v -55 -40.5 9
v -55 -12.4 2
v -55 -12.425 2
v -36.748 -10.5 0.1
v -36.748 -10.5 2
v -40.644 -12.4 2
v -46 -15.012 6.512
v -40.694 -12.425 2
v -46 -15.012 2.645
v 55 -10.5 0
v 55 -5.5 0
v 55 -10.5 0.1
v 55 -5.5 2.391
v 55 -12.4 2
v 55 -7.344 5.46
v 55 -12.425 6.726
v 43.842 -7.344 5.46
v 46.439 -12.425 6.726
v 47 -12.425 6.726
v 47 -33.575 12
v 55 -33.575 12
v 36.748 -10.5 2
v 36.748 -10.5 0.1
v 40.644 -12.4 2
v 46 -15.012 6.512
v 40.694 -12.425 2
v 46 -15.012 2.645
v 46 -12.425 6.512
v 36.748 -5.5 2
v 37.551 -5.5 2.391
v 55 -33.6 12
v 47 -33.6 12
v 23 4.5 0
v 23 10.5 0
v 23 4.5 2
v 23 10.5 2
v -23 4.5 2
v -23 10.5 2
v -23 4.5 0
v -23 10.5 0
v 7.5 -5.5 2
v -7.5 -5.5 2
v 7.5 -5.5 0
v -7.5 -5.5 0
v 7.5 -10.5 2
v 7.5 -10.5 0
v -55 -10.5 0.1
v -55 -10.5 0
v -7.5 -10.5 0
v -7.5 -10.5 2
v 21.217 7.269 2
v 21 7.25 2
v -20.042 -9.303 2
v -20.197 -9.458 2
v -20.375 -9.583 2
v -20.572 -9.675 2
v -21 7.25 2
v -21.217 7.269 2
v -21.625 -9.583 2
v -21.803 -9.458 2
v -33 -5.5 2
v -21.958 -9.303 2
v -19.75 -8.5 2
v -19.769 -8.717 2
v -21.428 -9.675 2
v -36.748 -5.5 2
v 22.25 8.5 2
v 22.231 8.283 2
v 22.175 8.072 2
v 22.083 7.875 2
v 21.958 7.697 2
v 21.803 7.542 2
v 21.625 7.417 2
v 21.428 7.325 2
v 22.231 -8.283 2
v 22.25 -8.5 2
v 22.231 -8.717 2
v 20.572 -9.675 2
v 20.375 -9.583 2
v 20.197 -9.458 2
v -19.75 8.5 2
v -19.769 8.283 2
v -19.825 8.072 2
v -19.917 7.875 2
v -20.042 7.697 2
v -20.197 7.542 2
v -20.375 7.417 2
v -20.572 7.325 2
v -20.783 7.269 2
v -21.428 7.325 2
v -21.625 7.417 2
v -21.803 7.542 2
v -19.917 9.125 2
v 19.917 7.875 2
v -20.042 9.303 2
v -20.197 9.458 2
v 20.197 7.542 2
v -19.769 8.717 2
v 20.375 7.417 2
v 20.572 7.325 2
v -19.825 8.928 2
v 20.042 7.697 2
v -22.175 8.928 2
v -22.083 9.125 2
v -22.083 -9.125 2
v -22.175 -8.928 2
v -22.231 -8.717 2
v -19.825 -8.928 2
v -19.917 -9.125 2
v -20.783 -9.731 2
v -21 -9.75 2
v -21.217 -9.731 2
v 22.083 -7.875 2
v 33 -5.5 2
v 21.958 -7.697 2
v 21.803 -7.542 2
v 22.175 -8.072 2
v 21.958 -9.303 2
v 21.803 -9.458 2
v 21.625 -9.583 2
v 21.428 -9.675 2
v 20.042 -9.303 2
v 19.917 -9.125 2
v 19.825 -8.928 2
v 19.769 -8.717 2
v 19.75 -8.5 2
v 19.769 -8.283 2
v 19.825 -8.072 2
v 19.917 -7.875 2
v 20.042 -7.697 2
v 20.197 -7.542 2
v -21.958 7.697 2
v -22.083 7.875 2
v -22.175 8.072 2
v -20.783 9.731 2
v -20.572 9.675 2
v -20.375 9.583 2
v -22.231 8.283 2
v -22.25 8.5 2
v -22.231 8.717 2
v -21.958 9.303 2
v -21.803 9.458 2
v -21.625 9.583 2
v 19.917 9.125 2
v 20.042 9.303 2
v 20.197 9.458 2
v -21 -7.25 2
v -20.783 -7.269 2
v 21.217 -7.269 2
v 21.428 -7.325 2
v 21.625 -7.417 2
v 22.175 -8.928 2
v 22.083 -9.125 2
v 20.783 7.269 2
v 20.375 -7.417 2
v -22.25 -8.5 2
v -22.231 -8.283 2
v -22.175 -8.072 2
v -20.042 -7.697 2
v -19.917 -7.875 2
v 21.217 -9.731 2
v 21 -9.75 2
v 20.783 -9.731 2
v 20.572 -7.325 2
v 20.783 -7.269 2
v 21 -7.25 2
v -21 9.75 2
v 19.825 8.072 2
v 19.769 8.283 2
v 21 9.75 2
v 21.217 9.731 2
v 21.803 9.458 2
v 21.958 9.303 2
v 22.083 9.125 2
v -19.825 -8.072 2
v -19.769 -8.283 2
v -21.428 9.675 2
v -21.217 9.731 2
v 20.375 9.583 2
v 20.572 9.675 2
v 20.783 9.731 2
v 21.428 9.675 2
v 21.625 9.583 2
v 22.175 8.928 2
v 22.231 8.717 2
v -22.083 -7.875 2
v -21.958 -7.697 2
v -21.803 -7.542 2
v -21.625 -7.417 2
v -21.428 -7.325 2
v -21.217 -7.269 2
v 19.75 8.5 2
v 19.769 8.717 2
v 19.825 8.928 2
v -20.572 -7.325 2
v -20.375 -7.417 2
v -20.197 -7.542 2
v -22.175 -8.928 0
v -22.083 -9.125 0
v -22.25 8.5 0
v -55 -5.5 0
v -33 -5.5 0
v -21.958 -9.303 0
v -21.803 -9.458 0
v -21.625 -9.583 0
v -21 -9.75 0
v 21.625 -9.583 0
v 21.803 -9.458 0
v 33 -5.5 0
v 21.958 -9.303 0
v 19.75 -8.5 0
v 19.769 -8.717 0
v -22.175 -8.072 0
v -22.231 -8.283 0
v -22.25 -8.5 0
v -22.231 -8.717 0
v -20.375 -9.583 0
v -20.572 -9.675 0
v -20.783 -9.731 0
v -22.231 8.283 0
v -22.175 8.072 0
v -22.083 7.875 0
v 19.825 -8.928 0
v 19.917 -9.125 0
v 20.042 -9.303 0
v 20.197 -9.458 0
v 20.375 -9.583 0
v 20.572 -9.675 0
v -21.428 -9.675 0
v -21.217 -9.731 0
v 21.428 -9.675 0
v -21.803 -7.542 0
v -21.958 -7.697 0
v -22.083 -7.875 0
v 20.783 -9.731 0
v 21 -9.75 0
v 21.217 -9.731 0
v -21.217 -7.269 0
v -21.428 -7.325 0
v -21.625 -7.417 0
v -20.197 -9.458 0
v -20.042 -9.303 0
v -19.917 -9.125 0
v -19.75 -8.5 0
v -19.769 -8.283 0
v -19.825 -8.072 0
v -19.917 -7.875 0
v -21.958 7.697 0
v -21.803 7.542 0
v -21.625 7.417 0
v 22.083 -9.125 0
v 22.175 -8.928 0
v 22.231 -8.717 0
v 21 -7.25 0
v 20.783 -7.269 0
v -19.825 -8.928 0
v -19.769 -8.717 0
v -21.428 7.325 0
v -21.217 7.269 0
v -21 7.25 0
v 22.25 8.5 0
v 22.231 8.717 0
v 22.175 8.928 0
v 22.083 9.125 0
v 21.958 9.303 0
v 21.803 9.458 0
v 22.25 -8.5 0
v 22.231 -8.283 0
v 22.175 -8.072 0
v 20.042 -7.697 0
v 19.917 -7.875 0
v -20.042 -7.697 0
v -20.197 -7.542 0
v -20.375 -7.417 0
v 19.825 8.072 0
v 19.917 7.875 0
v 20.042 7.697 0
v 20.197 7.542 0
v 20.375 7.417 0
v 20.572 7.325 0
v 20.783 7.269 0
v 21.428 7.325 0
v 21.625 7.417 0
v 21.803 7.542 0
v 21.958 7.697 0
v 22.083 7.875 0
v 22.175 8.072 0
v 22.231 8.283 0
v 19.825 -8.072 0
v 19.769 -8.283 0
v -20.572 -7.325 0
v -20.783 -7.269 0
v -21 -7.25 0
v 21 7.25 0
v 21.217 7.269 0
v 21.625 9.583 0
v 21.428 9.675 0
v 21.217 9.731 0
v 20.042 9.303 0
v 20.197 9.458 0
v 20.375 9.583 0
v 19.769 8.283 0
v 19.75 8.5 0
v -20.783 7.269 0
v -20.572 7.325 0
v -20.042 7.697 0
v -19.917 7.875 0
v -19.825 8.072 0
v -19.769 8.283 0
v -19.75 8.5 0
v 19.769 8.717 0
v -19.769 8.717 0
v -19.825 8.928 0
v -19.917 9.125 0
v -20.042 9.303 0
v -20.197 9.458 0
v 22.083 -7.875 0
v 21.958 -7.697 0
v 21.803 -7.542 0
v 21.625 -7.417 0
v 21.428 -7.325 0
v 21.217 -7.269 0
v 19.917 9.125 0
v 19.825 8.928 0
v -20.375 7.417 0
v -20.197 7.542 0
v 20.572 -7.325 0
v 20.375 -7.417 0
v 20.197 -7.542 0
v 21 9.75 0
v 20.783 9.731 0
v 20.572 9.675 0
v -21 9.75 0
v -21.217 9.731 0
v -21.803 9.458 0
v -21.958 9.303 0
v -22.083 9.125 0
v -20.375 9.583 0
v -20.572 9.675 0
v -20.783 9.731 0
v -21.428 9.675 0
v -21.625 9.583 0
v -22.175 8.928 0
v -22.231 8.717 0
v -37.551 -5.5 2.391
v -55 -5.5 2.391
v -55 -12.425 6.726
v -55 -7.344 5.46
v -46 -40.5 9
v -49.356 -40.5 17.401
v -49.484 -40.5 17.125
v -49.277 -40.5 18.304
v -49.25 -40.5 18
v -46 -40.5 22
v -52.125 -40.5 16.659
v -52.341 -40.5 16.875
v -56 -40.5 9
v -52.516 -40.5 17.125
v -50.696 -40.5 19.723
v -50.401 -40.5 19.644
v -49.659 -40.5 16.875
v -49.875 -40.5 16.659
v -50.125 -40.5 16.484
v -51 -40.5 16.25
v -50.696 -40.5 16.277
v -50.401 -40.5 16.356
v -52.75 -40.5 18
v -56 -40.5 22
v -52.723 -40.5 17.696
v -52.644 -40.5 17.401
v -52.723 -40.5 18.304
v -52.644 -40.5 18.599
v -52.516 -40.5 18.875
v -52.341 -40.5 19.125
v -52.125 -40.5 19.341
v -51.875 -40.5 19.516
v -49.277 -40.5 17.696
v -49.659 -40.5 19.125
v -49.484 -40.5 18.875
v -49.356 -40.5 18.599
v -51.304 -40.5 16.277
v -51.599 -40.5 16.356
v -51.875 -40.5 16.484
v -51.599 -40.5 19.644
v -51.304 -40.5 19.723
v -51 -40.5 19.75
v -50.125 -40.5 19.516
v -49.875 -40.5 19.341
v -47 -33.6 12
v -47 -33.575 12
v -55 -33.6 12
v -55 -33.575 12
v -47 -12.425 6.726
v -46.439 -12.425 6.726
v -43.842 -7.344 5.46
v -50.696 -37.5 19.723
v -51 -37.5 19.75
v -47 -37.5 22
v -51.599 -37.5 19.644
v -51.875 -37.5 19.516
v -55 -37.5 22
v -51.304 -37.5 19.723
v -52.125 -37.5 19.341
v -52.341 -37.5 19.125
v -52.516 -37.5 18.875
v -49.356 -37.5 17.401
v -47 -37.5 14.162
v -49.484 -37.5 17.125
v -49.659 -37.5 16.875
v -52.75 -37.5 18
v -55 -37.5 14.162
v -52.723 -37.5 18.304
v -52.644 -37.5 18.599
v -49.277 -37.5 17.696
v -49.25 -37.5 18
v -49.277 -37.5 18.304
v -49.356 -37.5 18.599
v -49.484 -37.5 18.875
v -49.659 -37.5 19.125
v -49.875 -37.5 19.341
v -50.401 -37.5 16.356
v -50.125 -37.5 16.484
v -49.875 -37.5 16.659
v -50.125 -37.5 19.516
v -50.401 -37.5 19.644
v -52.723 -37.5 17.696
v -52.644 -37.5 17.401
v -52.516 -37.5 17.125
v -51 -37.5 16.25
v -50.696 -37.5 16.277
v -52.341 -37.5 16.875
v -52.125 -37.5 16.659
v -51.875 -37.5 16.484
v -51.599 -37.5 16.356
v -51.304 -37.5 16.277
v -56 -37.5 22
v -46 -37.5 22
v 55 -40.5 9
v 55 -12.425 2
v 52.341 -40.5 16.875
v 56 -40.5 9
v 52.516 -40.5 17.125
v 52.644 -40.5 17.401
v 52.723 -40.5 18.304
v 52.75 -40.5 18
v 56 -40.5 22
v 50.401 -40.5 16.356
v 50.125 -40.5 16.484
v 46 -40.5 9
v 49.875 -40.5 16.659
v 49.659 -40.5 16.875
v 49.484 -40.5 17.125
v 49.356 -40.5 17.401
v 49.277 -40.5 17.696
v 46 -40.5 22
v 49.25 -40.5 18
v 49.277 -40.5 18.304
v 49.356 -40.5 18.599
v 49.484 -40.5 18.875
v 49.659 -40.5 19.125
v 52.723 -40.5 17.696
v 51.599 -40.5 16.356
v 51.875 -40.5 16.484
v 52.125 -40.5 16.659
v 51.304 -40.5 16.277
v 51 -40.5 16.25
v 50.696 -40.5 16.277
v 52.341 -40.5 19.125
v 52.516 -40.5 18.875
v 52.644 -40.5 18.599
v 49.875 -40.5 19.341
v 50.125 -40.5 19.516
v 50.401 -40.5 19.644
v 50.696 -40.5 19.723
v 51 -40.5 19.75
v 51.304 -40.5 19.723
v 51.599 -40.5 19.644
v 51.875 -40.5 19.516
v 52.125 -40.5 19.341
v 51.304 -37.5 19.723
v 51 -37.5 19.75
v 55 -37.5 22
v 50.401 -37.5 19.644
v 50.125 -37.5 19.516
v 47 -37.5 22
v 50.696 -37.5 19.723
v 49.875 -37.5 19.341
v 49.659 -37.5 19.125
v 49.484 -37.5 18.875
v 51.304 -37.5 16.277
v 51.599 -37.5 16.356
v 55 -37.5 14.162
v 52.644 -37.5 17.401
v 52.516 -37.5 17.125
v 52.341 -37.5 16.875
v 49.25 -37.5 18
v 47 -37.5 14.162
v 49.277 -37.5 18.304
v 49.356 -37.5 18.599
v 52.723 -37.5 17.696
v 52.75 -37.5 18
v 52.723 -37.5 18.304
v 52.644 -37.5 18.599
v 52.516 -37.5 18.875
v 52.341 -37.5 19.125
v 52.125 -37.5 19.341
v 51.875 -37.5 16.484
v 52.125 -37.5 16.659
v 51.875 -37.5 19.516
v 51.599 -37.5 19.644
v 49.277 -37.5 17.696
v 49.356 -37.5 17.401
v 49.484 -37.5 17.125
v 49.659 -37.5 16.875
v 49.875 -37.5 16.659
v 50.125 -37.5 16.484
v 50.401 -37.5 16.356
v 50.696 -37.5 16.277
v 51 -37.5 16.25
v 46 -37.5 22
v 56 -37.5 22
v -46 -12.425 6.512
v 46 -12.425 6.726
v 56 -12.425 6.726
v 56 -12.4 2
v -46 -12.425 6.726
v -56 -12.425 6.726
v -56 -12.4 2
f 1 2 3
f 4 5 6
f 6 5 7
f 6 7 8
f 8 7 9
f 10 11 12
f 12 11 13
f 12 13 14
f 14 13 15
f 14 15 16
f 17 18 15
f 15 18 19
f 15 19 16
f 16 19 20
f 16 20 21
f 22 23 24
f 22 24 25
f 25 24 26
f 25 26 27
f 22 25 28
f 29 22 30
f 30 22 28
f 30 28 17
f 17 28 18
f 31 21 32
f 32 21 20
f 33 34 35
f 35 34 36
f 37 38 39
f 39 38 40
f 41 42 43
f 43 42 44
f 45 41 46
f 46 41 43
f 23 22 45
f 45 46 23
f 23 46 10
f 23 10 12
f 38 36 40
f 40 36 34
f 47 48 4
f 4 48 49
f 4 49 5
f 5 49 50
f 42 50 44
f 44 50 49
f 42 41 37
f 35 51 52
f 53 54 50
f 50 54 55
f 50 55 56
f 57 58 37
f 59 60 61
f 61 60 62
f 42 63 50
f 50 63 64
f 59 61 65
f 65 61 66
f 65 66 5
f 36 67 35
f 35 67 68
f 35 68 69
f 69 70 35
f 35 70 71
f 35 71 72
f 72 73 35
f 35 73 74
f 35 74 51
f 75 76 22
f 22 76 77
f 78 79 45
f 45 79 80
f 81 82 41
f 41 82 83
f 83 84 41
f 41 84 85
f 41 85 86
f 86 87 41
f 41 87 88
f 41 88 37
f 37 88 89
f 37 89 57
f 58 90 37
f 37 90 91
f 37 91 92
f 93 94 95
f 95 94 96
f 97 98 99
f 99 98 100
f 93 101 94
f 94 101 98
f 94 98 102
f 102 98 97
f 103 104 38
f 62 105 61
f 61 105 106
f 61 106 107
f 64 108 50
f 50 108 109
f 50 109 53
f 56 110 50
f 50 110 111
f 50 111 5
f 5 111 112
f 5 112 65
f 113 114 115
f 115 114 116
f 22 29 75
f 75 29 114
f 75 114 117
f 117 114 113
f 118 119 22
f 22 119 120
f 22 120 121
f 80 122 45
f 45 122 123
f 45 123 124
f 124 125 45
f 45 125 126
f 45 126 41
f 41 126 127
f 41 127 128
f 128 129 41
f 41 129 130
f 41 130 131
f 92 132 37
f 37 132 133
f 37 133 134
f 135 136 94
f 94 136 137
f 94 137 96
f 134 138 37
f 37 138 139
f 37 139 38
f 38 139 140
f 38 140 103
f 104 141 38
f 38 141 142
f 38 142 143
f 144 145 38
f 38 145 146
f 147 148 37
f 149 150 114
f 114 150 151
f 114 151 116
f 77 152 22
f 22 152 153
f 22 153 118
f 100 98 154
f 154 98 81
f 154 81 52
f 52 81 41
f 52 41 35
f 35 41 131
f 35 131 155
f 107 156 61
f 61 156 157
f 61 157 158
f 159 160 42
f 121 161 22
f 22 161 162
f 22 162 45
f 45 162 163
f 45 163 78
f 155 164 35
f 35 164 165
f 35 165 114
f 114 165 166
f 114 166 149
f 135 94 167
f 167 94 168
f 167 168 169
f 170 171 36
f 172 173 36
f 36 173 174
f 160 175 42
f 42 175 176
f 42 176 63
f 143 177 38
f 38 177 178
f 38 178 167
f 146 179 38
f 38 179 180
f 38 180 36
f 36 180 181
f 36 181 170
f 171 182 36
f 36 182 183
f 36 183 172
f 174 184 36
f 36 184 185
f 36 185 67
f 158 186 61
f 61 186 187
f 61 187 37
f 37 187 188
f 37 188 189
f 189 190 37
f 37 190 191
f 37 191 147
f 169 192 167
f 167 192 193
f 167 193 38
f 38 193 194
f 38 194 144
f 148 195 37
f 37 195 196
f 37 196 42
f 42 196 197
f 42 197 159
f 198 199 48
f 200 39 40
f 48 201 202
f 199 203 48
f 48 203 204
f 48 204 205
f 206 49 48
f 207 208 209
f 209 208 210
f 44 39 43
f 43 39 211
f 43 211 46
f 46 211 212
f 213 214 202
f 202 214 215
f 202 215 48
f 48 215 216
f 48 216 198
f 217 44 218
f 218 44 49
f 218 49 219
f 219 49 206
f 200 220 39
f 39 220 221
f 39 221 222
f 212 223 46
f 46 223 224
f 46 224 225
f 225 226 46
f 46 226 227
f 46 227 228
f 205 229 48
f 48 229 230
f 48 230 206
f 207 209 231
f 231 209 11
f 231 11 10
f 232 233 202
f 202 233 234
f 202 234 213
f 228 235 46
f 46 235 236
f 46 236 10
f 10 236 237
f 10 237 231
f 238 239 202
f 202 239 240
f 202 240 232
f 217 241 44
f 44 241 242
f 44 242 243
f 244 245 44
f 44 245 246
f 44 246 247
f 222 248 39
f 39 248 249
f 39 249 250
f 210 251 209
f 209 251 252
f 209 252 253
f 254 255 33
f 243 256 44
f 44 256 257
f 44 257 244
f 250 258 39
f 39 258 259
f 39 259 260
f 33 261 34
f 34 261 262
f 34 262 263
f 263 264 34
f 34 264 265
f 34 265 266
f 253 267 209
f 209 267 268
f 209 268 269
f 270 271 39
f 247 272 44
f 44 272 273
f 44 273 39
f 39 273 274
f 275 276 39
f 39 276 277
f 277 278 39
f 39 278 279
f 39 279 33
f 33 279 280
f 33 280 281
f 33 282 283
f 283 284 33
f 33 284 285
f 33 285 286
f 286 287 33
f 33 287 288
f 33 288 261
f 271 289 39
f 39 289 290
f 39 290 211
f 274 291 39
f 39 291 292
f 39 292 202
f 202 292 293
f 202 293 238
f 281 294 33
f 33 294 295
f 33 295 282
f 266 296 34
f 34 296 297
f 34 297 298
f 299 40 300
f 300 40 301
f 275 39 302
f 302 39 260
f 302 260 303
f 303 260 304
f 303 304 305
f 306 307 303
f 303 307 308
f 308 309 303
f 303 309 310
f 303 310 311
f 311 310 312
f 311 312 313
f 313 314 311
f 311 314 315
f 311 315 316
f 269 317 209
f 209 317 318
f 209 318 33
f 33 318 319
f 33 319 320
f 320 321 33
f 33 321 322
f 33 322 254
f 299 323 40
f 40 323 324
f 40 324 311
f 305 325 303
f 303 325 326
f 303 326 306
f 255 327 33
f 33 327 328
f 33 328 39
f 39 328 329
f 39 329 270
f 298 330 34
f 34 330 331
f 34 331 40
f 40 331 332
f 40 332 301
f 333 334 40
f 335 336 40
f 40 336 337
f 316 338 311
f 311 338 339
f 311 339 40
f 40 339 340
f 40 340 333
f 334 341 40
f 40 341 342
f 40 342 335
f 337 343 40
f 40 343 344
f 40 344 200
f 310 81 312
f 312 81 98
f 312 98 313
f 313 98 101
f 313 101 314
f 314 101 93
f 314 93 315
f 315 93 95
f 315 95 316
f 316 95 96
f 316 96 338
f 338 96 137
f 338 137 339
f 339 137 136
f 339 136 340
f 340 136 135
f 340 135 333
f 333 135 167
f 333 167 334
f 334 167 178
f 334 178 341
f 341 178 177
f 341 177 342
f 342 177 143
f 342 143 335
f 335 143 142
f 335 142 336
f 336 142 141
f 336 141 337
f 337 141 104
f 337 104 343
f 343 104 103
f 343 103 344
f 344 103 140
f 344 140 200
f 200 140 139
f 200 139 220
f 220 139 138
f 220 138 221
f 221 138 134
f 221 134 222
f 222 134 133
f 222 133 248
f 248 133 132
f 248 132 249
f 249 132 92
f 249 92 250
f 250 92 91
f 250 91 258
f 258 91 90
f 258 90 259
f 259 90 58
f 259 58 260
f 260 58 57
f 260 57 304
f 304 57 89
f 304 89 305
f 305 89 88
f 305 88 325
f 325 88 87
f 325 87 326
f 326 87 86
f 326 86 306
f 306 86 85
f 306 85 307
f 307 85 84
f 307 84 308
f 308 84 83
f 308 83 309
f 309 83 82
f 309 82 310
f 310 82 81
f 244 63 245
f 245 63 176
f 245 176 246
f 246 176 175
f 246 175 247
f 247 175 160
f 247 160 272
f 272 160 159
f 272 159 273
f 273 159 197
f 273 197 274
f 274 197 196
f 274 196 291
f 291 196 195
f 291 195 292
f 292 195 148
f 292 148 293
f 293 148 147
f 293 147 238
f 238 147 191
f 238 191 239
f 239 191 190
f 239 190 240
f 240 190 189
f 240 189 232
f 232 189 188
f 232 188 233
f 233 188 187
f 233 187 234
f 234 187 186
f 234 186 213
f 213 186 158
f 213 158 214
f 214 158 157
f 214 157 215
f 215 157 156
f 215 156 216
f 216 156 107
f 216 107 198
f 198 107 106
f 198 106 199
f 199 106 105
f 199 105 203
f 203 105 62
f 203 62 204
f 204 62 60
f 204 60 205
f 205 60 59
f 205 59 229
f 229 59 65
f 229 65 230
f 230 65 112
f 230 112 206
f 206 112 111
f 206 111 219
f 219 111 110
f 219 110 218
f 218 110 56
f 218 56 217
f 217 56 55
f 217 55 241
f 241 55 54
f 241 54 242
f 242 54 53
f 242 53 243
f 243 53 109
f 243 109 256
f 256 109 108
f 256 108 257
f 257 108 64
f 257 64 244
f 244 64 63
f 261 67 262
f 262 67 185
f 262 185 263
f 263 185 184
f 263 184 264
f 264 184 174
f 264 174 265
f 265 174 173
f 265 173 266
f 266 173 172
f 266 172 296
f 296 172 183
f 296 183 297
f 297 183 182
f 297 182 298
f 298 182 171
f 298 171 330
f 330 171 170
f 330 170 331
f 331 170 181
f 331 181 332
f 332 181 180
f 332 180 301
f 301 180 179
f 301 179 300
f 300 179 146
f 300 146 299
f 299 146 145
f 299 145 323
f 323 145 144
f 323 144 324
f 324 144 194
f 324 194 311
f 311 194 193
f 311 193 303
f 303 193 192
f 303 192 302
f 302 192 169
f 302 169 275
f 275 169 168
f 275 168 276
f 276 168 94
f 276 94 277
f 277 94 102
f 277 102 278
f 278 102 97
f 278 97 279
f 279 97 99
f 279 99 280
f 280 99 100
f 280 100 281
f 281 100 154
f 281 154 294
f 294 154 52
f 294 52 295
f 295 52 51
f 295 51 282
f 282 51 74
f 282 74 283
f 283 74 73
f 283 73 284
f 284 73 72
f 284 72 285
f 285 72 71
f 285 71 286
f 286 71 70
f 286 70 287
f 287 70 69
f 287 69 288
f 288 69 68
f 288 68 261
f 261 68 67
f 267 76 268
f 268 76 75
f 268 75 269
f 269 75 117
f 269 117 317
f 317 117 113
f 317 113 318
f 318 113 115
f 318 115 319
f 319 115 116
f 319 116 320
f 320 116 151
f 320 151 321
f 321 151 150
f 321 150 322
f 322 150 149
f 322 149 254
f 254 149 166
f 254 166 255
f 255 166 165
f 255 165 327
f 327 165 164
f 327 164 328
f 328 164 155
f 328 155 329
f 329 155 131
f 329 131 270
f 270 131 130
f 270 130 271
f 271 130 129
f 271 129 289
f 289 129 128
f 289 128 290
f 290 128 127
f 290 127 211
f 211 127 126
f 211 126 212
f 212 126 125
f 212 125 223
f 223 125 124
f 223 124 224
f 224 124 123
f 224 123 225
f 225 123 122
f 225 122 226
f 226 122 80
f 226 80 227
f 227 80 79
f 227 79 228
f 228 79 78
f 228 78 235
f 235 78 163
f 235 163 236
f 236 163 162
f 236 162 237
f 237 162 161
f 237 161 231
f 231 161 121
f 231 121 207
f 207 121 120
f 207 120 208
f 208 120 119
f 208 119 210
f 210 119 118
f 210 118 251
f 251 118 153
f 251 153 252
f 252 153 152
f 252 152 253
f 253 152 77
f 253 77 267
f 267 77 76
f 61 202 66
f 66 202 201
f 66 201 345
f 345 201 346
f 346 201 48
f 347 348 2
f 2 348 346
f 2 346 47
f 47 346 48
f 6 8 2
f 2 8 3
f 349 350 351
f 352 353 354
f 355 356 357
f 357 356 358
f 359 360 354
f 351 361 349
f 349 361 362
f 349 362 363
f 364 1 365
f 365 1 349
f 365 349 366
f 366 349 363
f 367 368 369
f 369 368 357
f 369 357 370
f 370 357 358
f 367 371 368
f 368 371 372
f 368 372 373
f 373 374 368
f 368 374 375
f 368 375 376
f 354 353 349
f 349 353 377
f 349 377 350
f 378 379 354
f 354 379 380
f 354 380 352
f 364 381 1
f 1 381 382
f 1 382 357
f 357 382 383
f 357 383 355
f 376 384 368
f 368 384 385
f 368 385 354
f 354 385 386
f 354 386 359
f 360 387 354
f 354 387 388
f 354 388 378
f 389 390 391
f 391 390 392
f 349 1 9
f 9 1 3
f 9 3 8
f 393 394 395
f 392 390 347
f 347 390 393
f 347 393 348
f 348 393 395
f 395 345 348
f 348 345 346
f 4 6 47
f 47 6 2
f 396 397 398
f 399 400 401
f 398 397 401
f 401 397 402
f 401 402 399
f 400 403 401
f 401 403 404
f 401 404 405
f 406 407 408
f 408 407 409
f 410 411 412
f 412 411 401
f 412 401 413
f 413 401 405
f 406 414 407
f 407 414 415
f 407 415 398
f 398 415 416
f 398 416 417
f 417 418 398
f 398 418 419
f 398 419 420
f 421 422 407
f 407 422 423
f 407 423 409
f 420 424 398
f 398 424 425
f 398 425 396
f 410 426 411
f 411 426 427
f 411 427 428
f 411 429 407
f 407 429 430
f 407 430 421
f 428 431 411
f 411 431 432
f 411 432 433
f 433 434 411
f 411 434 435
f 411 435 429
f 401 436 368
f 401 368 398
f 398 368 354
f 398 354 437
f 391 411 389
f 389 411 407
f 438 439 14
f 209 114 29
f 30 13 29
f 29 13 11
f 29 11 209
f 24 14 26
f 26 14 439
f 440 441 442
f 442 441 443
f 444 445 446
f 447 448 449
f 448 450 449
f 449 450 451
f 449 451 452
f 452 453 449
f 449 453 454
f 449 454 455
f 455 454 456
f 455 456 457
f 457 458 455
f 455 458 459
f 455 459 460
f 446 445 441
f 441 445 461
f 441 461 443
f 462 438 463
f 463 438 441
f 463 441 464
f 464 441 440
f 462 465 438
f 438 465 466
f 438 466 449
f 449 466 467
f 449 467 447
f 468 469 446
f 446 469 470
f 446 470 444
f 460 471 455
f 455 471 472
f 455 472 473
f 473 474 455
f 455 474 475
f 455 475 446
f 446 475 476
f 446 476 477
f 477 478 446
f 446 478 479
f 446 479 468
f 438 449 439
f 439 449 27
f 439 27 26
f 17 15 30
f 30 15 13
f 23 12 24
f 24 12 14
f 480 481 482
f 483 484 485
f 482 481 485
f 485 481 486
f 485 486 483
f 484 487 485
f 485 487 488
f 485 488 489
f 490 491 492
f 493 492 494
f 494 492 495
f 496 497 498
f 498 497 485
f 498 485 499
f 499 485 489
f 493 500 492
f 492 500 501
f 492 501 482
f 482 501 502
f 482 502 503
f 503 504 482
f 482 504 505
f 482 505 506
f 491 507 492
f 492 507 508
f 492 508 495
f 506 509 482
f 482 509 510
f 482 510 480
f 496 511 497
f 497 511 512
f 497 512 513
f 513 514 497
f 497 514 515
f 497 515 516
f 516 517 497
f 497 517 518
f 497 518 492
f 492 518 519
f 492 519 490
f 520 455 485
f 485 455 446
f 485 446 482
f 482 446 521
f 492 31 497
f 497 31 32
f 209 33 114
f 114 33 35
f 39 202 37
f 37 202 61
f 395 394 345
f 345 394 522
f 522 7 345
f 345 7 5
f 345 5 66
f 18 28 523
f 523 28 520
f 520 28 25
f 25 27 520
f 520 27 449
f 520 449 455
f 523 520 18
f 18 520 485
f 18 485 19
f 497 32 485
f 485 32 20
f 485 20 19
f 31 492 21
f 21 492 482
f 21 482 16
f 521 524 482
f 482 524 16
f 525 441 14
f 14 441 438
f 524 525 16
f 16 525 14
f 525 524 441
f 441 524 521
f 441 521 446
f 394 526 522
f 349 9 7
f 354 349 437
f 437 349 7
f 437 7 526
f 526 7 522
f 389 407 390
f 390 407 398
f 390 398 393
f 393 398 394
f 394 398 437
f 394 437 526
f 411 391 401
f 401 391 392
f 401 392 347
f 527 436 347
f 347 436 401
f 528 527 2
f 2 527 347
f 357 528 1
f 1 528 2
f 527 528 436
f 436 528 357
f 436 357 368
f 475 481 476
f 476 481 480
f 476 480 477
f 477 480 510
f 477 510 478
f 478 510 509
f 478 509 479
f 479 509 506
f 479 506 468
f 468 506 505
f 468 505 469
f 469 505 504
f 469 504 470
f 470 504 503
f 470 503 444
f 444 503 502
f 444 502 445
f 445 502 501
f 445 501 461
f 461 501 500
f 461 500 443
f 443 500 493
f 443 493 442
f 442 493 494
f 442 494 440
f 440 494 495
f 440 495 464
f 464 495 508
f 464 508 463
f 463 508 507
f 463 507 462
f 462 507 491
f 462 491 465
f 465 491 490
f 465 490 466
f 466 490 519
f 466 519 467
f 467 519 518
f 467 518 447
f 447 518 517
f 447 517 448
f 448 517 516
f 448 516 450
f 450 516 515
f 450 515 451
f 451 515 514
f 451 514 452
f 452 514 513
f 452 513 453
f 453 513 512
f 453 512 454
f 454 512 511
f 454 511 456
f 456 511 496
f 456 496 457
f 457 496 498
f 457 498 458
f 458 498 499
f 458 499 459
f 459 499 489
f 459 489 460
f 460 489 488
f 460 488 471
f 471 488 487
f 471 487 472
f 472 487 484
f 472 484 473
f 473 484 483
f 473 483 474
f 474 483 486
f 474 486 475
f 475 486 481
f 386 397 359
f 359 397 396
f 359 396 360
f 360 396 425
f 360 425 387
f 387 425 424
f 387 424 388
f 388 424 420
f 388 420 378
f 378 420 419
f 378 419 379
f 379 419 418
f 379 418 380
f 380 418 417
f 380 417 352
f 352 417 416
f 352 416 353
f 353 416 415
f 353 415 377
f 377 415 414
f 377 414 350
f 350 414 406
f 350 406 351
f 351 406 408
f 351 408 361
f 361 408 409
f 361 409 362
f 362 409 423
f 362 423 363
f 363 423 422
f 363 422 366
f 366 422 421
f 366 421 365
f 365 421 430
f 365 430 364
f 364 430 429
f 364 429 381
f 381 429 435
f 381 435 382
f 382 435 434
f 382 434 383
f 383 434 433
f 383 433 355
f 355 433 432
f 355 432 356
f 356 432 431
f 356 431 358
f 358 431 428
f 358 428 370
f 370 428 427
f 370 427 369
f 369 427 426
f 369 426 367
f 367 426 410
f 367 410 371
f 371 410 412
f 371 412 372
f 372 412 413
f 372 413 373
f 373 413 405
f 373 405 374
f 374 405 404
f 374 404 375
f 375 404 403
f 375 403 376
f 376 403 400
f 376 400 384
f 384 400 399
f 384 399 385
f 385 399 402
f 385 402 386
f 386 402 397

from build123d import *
from OCP.BRepFilletAPI import BRepFilletAPI_MakeChamfer

# Parameters (mm, degrees)
BOSS_EXTRUDE1_DEPTH                        = 2
SKETCH2_R                                  = 1.25
CUT_EXTRUDE1_DEPTH                         = 26.362373706
MIRROR1_AT_THE_SECOND_PLANE_COPY_1_SKETC_R = 1.25
MIRROR1_AT_THE_SECOND_PLANE_COPY_1_DEPTH   = 26.362373706
SKETCH4_W                                  = 32
SKETCH4_H                                  = 5
BOSS_EXTRUDE2_DEPTH                        = 2
SKETCH5_W                                  = 8
SKETCH5_H                                  = 35
BOSS_EXTRUDE3_DEPTH                        = 10
CHAMFER3_SIZE                              = 7
CHAMFER3_SIZE2                             = 28.075466535
CHAMFER2_SIZE                              = 1.9
CHAMFER2_SIZE2                             = 2.60855061
SKETCH6_W                                  = 8
SKETCH6_H                                  = 3
BOSS_EXTRUDE4_DEPTH                        = 10
CHAMFER4_SIZE                              = 3.9
CHAMFER4_SIZE2                             = 2.161805301
CHAMFER3_OF_MIRROR3_SIZE                   = 7
CHAMFER3_OF_MIRROR3_SIZE2                  = 28.075466535
CHAMFER2_OF_MIRROR3_SIZE                   = 1.9
CHAMFER2_OF_MIRROR3_SIZE2                  = 2.60855061
CHAMFER4_OF_MIRROR3_SIZE2                  = 3.9
CHAMFER4_OF_MIRROR3_SIZE                   = 2.161805301
CHAMFER1_SIZE                              = 10
CHAMFER5_SIZE                              = 10.251519208
CHAMFER5_SIZE_2                            = 5
BOSS_EXTRUDE5_DEPTH                        = 1
BOSS_EXTRUDE6_DEPTH                        = 1
SKETCH9_R                                  = 1.75
CUT_EXTRUDE2_DEPTH                         = 77.96752562


with BuildPart() as part:
    # Sketch1 → Boss-Extrude1 (new body)
    with BuildSketch(Plane.XY):
        Polygon((23, 10.5), (-23, 10.5), (-23, -10.5), (-7.5, -10.5), (-7.5, -5.5), (7.5, -5.5), (7.5, -10.5), (23, -10.5), align=None)
    extrude(amount=BOSS_EXTRUDE1_DEPTH)

    # Sketch2 → Cut-Extrude1 (cut, through all)
    with BuildSketch(Plane.XY.offset(2)):
        with Locations((-21, 8.5)):
            Circle(SKETCH2_R)
    cut_extrude1 = extrude(amount=-CUT_EXTRUDE1_DEPTH, mode=Mode.SUBTRACT)

    # Mirror1: Cut-Extrude1 across plane
    add(cut_extrude1.mirror(Plane(origin=(0, 0, 0), x_dir=(0, 0, 1), z_dir=(1, 0, 0))), mode=Mode.SUBTRACT)

    # Mirror1 at the second plane: Cut-Extrude1 across plane
    add(cut_extrude1.mirror(Plane.ZX), mode=Mode.SUBTRACT)

    # Mirror1 at the second plane copy 1 sketc → Mirror1 at the second plane copy 1 (cut, through all)
    with BuildSketch(Plane(origin=(0, 0, 2), x_dir=(-1, 0, 0), z_dir=(0, 0, 1))):
        with Locations((-21, 8.5)):
            Circle(MIRROR1_AT_THE_SECOND_PLANE_COPY_1_SKETC_R)
    extrude(amount=-MIRROR1_AT_THE_SECOND_PLANE_COPY_1_DEPTH, mode=Mode.SUBTRACT)

    # Sketch4 → Boss-Extrude2 (add)
    with BuildSketch(Plane.XY):
        with Locations((-39, -8)):
            Rectangle(SKETCH4_W, SKETCH4_H)
    boss_extrude2 = extrude(amount=BOSS_EXTRUDE2_DEPTH)

    # Sketch5 → Boss-Extrude3 (add)
    with BuildSketch(Plane.XY.offset(2)):
        with Locations((-51, -23)):
            Rectangle(SKETCH5_W, SKETCH5_H)
    boss_extrude3 = extrude(amount=BOSS_EXTRUDE3_DEPTH)

    # Chamfer3: one chamfer whose edges measure the first distance from different faces: ONE call of the kernel's chamfer builder (chamfer() names one face for all edges)
    chamfer3_edges_1 = [part.edges().sort_by_distance(p)[0] for p in [
        (-51, -40.5, 2),
    ]]
    chamfer3_side_1 = [part.faces().sort_by_distance(p)[0] for p in [
        (-51, -40.5, 7),
    ]]
    chamfer3_edges_2 = [part.edges().sort_by_distance(p)[0] for p in [
        (-51, -5.5, 12),
    ]]
    chamfer3_side_2 = [part.faces().sort_by_distance(p)[0] for p in [
        (-54.65823985, -5.5, 6),
    ]]
    chamfer3 = BRepFilletAPI_MakeChamfer(part.part.solid().wrapped)
    for e in chamfer3_edges_1:
        chamfer3.Add(CHAMFER3_SIZE, CHAMFER3_SIZE2, e.wrapped, chamfer3_side_1[0].wrapped)  # the first distance lies on this face
    for e in chamfer3_edges_2:
        chamfer3.Add(CHAMFER3_SIZE, CHAMFER3_SIZE2, e.wrapped, chamfer3_side_2[0].wrapped)  # the first distance lies on this face
    add(Compound.cast(chamfer3.Shape()), mode=Mode.REPLACE)

    # Chamfer2: one chamfer whose edges measure the first distance from different faces: ONE call of the kernel's chamfer builder (chamfer() names one face for all edges)
    chamfer2_edges_1 = [part.edges().sort_by_distance(p)[0] for p in [
        (-51, -10.5, 2),
    ]]
    chamfer2_edges_2 = [part.edges().sort_by_distance(p)[0] for p in [
        (-51, -5.5, 5),
    ]]
    chamfer2_side_2 = [part.faces().sort_by_distance(p)[0] for p in [
        (-51, -19.537733267, 8.5),
    ]]
    chamfer2 = BRepFilletAPI_MakeChamfer(part.part.solid().wrapped)
    for e in chamfer2_edges_1:
        chamfer2.Add(CHAMFER2_SIZE, e.wrapped)
    for e in chamfer2_edges_2:
        chamfer2.Add(CHAMFER2_SIZE, CHAMFER2_SIZE2, e.wrapped, chamfer2_side_2[0].wrapped)  # the first distance lies on this face
    add(Compound.cast(chamfer2.Shape()), mode=Mode.REPLACE)

    # Sketch6 → Boss-Extrude4 (add)
    with BuildSketch(Plane.XY.offset(12)):
        with Locations((-51, -39)):
            Rectangle(SKETCH6_W, SKETCH6_H)
    boss_extrude4 = extrude(amount=BOSS_EXTRUDE4_DEPTH)

    # Chamfer4
    chamfer4_edges = [part.edges().sort_by_distance(p)[0] for p in [
        (-51, -37.5, 12),
    ]]
    chamfer4_side = [part.faces().sort_by_distance(p)[0] for p in [
        (-51, -35.537733267, 12),
    ]]
    chamfer(chamfer4_edges, length=CHAMFER4_SIZE, length2=CHAMFER4_SIZE2, reference=chamfer4_side[0])

    # Mirror3: Boss-Extrude2, Boss-Extrude3, Boss-Extrude4 across plane
    add(boss_extrude2.mirror(Plane(origin=(0, 0, 0), x_dir=(0, 0, 1), z_dir=(1, 0, 0))))
    add(boss_extrude3.mirror(Plane(origin=(0, 0, 0), x_dir=(0, 0, 1), z_dir=(1, 0, 0))))
    add(boss_extrude4.mirror(Plane(origin=(0, 0, 0), x_dir=(0, 0, 1), z_dir=(1, 0, 0))))

    # Chamfer3 of Mirror3: one chamfer whose edges measure the first distance from different faces: ONE call of the kernel's chamfer builder (chamfer() names one face for all edges)
    chamfer3_of_mirror3_edges_1 = [part.edges().sort_by_distance(p)[0] for p in [
        (51, -40.5, 2),
    ]]
    chamfer3_of_mirror3_side_1 = [part.faces().sort_by_distance(p)[0] for p in [
        (51, -40.5, 7),
    ]]
    chamfer3_of_mirror3_edges_2 = [part.edges().sort_by_distance(p)[0] for p in [
        (51, -5.5, 12),
    ]]
    chamfer3_of_mirror3_side_2 = [part.faces().sort_by_distance(p)[0] for p in [
        (54.65823985, -5.5, 6),
    ]]
    chamfer3_of_mirror3 = BRepFilletAPI_MakeChamfer(part.part.solid().wrapped)
    for e in chamfer3_of_mirror3_edges_1:
        chamfer3_of_mirror3.Add(CHAMFER3_OF_MIRROR3_SIZE, CHAMFER3_OF_MIRROR3_SIZE2, e.wrapped, chamfer3_of_mirror3_side_1[0].wrapped)  # the first distance lies on this face
    for e in chamfer3_of_mirror3_edges_2:
        chamfer3_of_mirror3.Add(CHAMFER3_OF_MIRROR3_SIZE, CHAMFER3_OF_MIRROR3_SIZE2, e.wrapped, chamfer3_of_mirror3_side_2[0].wrapped)  # the first distance lies on this face
    add(Compound.cast(chamfer3_of_mirror3.Shape()), mode=Mode.REPLACE)

    # Chamfer2 of Mirror3: one chamfer whose edges measure the first distance from different faces: ONE call of the kernel's chamfer builder (chamfer() names one face for all edges)
    chamfer2_of_mirror3_edges_1 = [part.edges().sort_by_distance(p)[0] for p in [
        (51, -10.5, 2),
    ]]
    chamfer2_of_mirror3_edges_2 = [part.edges().sort_by_distance(p)[0] for p in [
        (51, -5.5, 5),
    ]]
    chamfer2_of_mirror3_side_2 = [part.faces().sort_by_distance(p)[0] for p in [
        (51, -19.537733267, 8.5),
    ]]
    chamfer2_of_mirror3 = BRepFilletAPI_MakeChamfer(part.part.solid().wrapped)
    for e in chamfer2_of_mirror3_edges_1:
        chamfer2_of_mirror3.Add(CHAMFER2_OF_MIRROR3_SIZE, e.wrapped)
    for e in chamfer2_of_mirror3_edges_2:
        chamfer2_of_mirror3.Add(CHAMFER2_OF_MIRROR3_SIZE, CHAMFER2_OF_MIRROR3_SIZE2, e.wrapped, chamfer2_of_mirror3_side_2[0].wrapped)  # the first distance lies on this face
    add(Compound.cast(chamfer2_of_mirror3.Shape()), mode=Mode.REPLACE)

    # Chamfer4 of Mirror3
    chamfer4_of_mirror3_edges = [part.edges().sort_by_distance(p)[0] for p in [
        (51, -37.5, 12),
    ]]
    chamfer(chamfer4_of_mirror3_edges, length=CHAMFER4_OF_MIRROR3_SIZE, length2=CHAMFER4_OF_MIRROR3_SIZE2)

    # Chamfer1
    chamfer1_edges = [part.edges().sort_by_distance(p)[0] for p in [
        (23, -5.5, 1),
        (-23, -5.5, 1),
    ]]
    chamfer(chamfer1_edges, length=CHAMFER1_SIZE)

    # Chamfer5
    # the kernel refuses this chamfer: 10.251519208, 5 mm, written as the material it adds along each edge
    with BuildSketch(Plane(origin=(-47, -10.5, 28.554001508), x_dir=(1, 0, 0), z_dir=(0, 0, -1))) as chamfer5_piece_1_section:
        Polygon((CHAMFER5_SIZE, 0), (0, CHAMFER5_SIZE_2), (0, 0), align=None)
    chamfer5_piece_1 = extrude(amount=55.008003016, mode=Mode.PRIVATE)
    chamfer5_piece_1 = split(chamfer5_piece_1, bisect_by=Plane(origin=(-47, -16.84580993, 3.102348031), z_dir=(0, 0.24192189559966532, 0.9702957262759971)), keep=Keep.TOP, mode=Mode.PRIVATE)
    chamfer5_piece_1 = split(chamfer5_piece_1, bisect_by=Plane(origin=(-47, -10.5, 2), z_dir=(0, 0, 1)), keep=Keep.TOP, mode=Mode.PRIVATE)
    chamfer5_piece_1 = split(chamfer5_piece_1, bisect_by=Plane(origin=(-47, -24.727000754, 14.327000754), z_dir=(0, -0.7071067811865475, -0.7071067811865477)), keep=Keep.TOP, mode=Mode.PRIVATE)
    add(chamfer5_piece_1)
    with BuildSketch(Plane(origin=(-47, -10.5, 2), x_dir=(1, 0, 0), z_dir=(0, 0, -1))) as chamfer5_piece_2_section:
        Polygon((CHAMFER5_SIZE, 0), (0, CHAMFER5_SIZE_2), (0, 0), align=None)
    chamfer5_piece_2 = extrude(amount=28.454001508, mode=Mode.PRIVATE)
    chamfer5_piece_2 = split(chamfer5_piece_2, bisect_by=Plane(origin=(-47, -11.45, 1.05), z_dir=(0, 0.7071067811865475, 0.7071067811865477)), keep=Keep.TOP, mode=Mode.PRIVATE)
    add(chamfer5_piece_2)
    with BuildSketch(Plane(origin=(-47, -5.5, 2), x_dir=(1, 0, 0), z_dir=(0, -1, 0))) as chamfer5_piece_3_section:
        Polygon((CHAMFER5_SIZE, 0), (0, CHAMFER5_SIZE_2), (0, 0), align=None)
    chamfer5_piece_3 = extrude(amount=5, mode=Mode.PRIVATE)
    chamfer5_piece_3 = split(chamfer5_piece_3, bisect_by=Plane(origin=(-47, -5.327185351, 2.103837517), z_dir=(0, -0.8571673007021119, -0.5150380749100548)), keep=Keep.TOP, mode=Mode.PRIVATE)
    chamfer5_piece_3 = split(chamfer5_piece_3, bisect_by=Plane(origin=(-47, -4.795792656, 4.824421389), z_dir=(0, -0.24192189559966532, -0.9702957262759971)), keep=Keep.TOP, mode=Mode.PRIVATE)
    add(chamfer5_piece_3)
    with BuildSketch(Plane(origin=(47, -5.5, 2), x_dir=(-1, 0, 0), z_dir=(0, -1, 0))) as chamfer5_piece_4_section:
        Polygon((CHAMFER5_SIZE, 0), (0, -CHAMFER5_SIZE_2), (0, 0), align=None)
    chamfer5_piece_4 = extrude(amount=5, mode=Mode.PRIVATE)
    chamfer5_piece_4 = split(chamfer5_piece_4, bisect_by=Plane(origin=(47, -5.327185351, 2.103837517), z_dir=(0, -0.8571673007021119, -0.5150380749100548)), keep=Keep.TOP, mode=Mode.PRIVATE)
    chamfer5_piece_4 = split(chamfer5_piece_4, bisect_by=Plane(origin=(47, -4.795792656, 4.824421389), z_dir=(0, -0.24192189559966532, -0.9702957262759971)), keep=Keep.TOP, mode=Mode.PRIVATE)
    add(chamfer5_piece_4)
    with BuildSketch(Plane(origin=(47, -10.5, 2), x_dir=(0, -1, 0), z_dir=(0, 0, -1))) as chamfer5_piece_5_section:
        Polygon((CHAMFER5_SIZE_2, 0), (0, CHAMFER5_SIZE), (0, 0), align=None)
    chamfer5_piece_5 = extrude(amount=28.454001508, mode=Mode.PRIVATE)
    chamfer5_piece_5 = split(chamfer5_piece_5, bisect_by=Plane(origin=(47, -11.45, 1.05), z_dir=(0, 0.7071067811865475, 0.7071067811865477)), keep=Keep.TOP, mode=Mode.PRIVATE)
    add(chamfer5_piece_5)
    with BuildSketch(Plane(origin=(47, -10.5, 28.554001508), x_dir=(0, -1, 0), z_dir=(0, 0, -1))) as chamfer5_piece_6_section:
        Polygon((CHAMFER5_SIZE_2, 0), (0, CHAMFER5_SIZE), (0, 0), align=None)
    chamfer5_piece_6 = extrude(amount=55.008003016, mode=Mode.PRIVATE)
    chamfer5_piece_6 = split(chamfer5_piece_6, bisect_by=Plane(origin=(47, -16.84580993, 3.102348031), z_dir=(0, 0.24192189559966532, 0.9702957262759971)), keep=Keep.TOP, mode=Mode.PRIVATE)
    chamfer5_piece_6 = split(chamfer5_piece_6, bisect_by=Plane(origin=(47, -10.5, 2), z_dir=(0, 0, 1)), keep=Keep.TOP, mode=Mode.PRIVATE)
    chamfer5_piece_6 = split(chamfer5_piece_6, bisect_by=Plane(origin=(47, -24.727000754, 14.327000754), z_dir=(0, -0.7071067811865475, -0.7071067811865477)), keep=Keep.TOP, mode=Mode.PRIVATE)
    add(chamfer5_piece_6)
    with BuildSketch(Plane(origin=(-47, -5.5, 2), x_dir=(1, 0, 0), z_dir=(0, -1, 0))) as chamfer5_piece_7a_section:
        Polygon((CHAMFER5_SIZE, 0), (0, CHAMFER5_SIZE_2), (0, 0), align=None)
    chamfer5_piece_7a = extrude(amount=31.554001508, mode=Mode.PRIVATE)
    chamfer5_piece_7a = split(chamfer5_piece_7a, bisect_by=Plane(origin=(-47, -10.5, 2), z_dir=(0, -1, 0)), keep=Keep.TOP, mode=Mode.PRIVATE)
    chamfer5_piece_7a = split(chamfer5_piece_7a, bisect_by=Plane(origin=(-47, -4.795792656, 4.824421389), z_dir=(0, -0.24192189559966532, -0.9702957262759971)), keep=Keep.TOP, mode=Mode.PRIVATE)
    chamfer5_piece_7a = split(chamfer5_piece_7a, bisect_by=Plane(origin=(-47, -8.95, -1.45), z_dir=(0, 0.7071067811865475, 0.7071067811865477)), keep=Keep.TOP, mode=Mode.PRIVATE)
    with BuildSketch(Plane(origin=(-47, -10.5, 28.554001508), x_dir=(1, 0, 0), z_dir=(0, 0, -1))) as chamfer5_piece_7b_section:
        Polygon((CHAMFER5_SIZE, 0), (0, CHAMFER5_SIZE_2), (0, 0), align=None)
    chamfer5_piece_7b = extrude(amount=55.008003016, mode=Mode.PRIVATE)
    chamfer5_piece_7b = split(chamfer5_piece_7b, bisect_by=Plane(origin=(-47, -15.736335931, 7.552205194), z_dir=(0, -0.24192189559966532, -0.9702957262759971)), keep=Keep.TOP, mode=Mode.PRIVATE)
    chamfer5_piece_7b = split(chamfer5_piece_7b, bisect_by=Plane(origin=(-47, -10.5, 2), z_dir=(0, 0, 1)), keep=Keep.TOP, mode=Mode.PRIVATE)
    chamfer5_piece_7b = split(chamfer5_piece_7b, bisect_by=Plane(origin=(-47, -24.727000754, 14.327000754), z_dir=(0, 0.7071067811865475, 0.7071067811865477)), keep=Keep.TOP, mode=Mode.PRIVATE)
    chamfer5_piece_7 = chamfer5_piece_7a & chamfer5_piece_7b
    add(chamfer5_piece_7)
    with BuildSketch(Plane(origin=(47, -5.5, 2), x_dir=(-1, 0, 0), z_dir=(0, -1, 0))) as chamfer5_piece_8a_section:
        Polygon((CHAMFER5_SIZE, 0), (0, -CHAMFER5_SIZE_2), (0, 0), align=None)
    chamfer5_piece_8a = extrude(amount=31.554001508, mode=Mode.PRIVATE)
    chamfer5_piece_8a = split(chamfer5_piece_8a, bisect_by=Plane(origin=(47, -10.5, 2), z_dir=(0, -1, 0)), keep=Keep.TOP, mode=Mode.PRIVATE)
    chamfer5_piece_8a = split(chamfer5_piece_8a, bisect_by=Plane(origin=(47, -4.795792656, 4.824421389), z_dir=(0, -0.24192189559966532, -0.9702957262759971)), keep=Keep.TOP, mode=Mode.PRIVATE)
    chamfer5_piece_8a = split(chamfer5_piece_8a, bisect_by=Plane(origin=(47, -8.95, -1.45), z_dir=(0, 0.7071067811865475, 0.7071067811865477)), keep=Keep.TOP, mode=Mode.PRIVATE)
    with BuildSketch(Plane(origin=(47, -10.5, 28.554001508), x_dir=(0, -1, 0), z_dir=(0, 0, -1))) as chamfer5_piece_8b_section:
        Polygon((CHAMFER5_SIZE_2, 0), (0, CHAMFER5_SIZE), (0, 0), align=None)
    chamfer5_piece_8b = extrude(amount=55.008003016, mode=Mode.PRIVATE)
    chamfer5_piece_8b = split(chamfer5_piece_8b, bisect_by=Plane(origin=(47, -15.736335931, 7.552205194), z_dir=(0, -0.24192189559966532, -0.9702957262759971)), keep=Keep.TOP, mode=Mode.PRIVATE)
    chamfer5_piece_8b = split(chamfer5_piece_8b, bisect_by=Plane(origin=(47, -10.5, 2), z_dir=(0, 0, 1)), keep=Keep.TOP, mode=Mode.PRIVATE)
    chamfer5_piece_8b = split(chamfer5_piece_8b, bisect_by=Plane(origin=(47, -24.727000754, 14.327000754), z_dir=(0, 0.7071067811865475, 0.7071067811865477)), keep=Keep.TOP, mode=Mode.PRIVATE)
    chamfer5_piece_8 = chamfer5_piece_8a & chamfer5_piece_8b
    add(chamfer5_piece_8)

    # Sketch7 → Boss-Extrude5 (add)
    with BuildSketch(Plane.ZY.offset(-47)):
        Polygon((22, -40.5), (9, -40.5), (2, -12.424533465), (6.7264801, -12.424533465), (22, -37.5), align=None)
    boss_extrude5 = extrude(amount=BOSS_EXTRUDE5_DEPTH)

    # Sketch8 → Boss-Extrude6 (add)
    with BuildSketch(Plane(origin=(55, 0, 0), x_dir=(0, 0, -1), z_dir=(1, 0, 0))):
        Polygon((-22, -37.5), (-22, -40.5), (-9, -40.5), (-2, -12.4), (-6.7264801, -12.424533465), align=None)
    boss_extrude6 = extrude(amount=BOSS_EXTRUDE6_DEPTH)

    # Mirror4: Boss-Extrude5, Boss-Extrude6 across plane
    add(boss_extrude5.mirror(Plane(origin=(0, 0, 0), x_dir=(0, 0, 1), z_dir=(1, 0, 0))))
    add(boss_extrude6.mirror(Plane(origin=(0, 0, 0), x_dir=(0, 0, 1), z_dir=(1, 0, 0))))

    # Sketch9 → Cut-Extrude2 (cut, through all)
    with BuildSketch(Plane(origin=(0, -37.5, 0), x_dir=(1, 0, 0), z_dir=(0, 1, 0))):
        with Locations(Location((-51, -18, 0), (0, 0, 270))):
            Circle(SKETCH9_R)
        with Locations(Location((51, -18, 0), (0, 0, 270))):
            Circle(SKETCH9_R)
    extrude(amount=-CUT_EXTRUDE2_DEPTH, mode=Mode.SUBTRACT)


solid = part.part
